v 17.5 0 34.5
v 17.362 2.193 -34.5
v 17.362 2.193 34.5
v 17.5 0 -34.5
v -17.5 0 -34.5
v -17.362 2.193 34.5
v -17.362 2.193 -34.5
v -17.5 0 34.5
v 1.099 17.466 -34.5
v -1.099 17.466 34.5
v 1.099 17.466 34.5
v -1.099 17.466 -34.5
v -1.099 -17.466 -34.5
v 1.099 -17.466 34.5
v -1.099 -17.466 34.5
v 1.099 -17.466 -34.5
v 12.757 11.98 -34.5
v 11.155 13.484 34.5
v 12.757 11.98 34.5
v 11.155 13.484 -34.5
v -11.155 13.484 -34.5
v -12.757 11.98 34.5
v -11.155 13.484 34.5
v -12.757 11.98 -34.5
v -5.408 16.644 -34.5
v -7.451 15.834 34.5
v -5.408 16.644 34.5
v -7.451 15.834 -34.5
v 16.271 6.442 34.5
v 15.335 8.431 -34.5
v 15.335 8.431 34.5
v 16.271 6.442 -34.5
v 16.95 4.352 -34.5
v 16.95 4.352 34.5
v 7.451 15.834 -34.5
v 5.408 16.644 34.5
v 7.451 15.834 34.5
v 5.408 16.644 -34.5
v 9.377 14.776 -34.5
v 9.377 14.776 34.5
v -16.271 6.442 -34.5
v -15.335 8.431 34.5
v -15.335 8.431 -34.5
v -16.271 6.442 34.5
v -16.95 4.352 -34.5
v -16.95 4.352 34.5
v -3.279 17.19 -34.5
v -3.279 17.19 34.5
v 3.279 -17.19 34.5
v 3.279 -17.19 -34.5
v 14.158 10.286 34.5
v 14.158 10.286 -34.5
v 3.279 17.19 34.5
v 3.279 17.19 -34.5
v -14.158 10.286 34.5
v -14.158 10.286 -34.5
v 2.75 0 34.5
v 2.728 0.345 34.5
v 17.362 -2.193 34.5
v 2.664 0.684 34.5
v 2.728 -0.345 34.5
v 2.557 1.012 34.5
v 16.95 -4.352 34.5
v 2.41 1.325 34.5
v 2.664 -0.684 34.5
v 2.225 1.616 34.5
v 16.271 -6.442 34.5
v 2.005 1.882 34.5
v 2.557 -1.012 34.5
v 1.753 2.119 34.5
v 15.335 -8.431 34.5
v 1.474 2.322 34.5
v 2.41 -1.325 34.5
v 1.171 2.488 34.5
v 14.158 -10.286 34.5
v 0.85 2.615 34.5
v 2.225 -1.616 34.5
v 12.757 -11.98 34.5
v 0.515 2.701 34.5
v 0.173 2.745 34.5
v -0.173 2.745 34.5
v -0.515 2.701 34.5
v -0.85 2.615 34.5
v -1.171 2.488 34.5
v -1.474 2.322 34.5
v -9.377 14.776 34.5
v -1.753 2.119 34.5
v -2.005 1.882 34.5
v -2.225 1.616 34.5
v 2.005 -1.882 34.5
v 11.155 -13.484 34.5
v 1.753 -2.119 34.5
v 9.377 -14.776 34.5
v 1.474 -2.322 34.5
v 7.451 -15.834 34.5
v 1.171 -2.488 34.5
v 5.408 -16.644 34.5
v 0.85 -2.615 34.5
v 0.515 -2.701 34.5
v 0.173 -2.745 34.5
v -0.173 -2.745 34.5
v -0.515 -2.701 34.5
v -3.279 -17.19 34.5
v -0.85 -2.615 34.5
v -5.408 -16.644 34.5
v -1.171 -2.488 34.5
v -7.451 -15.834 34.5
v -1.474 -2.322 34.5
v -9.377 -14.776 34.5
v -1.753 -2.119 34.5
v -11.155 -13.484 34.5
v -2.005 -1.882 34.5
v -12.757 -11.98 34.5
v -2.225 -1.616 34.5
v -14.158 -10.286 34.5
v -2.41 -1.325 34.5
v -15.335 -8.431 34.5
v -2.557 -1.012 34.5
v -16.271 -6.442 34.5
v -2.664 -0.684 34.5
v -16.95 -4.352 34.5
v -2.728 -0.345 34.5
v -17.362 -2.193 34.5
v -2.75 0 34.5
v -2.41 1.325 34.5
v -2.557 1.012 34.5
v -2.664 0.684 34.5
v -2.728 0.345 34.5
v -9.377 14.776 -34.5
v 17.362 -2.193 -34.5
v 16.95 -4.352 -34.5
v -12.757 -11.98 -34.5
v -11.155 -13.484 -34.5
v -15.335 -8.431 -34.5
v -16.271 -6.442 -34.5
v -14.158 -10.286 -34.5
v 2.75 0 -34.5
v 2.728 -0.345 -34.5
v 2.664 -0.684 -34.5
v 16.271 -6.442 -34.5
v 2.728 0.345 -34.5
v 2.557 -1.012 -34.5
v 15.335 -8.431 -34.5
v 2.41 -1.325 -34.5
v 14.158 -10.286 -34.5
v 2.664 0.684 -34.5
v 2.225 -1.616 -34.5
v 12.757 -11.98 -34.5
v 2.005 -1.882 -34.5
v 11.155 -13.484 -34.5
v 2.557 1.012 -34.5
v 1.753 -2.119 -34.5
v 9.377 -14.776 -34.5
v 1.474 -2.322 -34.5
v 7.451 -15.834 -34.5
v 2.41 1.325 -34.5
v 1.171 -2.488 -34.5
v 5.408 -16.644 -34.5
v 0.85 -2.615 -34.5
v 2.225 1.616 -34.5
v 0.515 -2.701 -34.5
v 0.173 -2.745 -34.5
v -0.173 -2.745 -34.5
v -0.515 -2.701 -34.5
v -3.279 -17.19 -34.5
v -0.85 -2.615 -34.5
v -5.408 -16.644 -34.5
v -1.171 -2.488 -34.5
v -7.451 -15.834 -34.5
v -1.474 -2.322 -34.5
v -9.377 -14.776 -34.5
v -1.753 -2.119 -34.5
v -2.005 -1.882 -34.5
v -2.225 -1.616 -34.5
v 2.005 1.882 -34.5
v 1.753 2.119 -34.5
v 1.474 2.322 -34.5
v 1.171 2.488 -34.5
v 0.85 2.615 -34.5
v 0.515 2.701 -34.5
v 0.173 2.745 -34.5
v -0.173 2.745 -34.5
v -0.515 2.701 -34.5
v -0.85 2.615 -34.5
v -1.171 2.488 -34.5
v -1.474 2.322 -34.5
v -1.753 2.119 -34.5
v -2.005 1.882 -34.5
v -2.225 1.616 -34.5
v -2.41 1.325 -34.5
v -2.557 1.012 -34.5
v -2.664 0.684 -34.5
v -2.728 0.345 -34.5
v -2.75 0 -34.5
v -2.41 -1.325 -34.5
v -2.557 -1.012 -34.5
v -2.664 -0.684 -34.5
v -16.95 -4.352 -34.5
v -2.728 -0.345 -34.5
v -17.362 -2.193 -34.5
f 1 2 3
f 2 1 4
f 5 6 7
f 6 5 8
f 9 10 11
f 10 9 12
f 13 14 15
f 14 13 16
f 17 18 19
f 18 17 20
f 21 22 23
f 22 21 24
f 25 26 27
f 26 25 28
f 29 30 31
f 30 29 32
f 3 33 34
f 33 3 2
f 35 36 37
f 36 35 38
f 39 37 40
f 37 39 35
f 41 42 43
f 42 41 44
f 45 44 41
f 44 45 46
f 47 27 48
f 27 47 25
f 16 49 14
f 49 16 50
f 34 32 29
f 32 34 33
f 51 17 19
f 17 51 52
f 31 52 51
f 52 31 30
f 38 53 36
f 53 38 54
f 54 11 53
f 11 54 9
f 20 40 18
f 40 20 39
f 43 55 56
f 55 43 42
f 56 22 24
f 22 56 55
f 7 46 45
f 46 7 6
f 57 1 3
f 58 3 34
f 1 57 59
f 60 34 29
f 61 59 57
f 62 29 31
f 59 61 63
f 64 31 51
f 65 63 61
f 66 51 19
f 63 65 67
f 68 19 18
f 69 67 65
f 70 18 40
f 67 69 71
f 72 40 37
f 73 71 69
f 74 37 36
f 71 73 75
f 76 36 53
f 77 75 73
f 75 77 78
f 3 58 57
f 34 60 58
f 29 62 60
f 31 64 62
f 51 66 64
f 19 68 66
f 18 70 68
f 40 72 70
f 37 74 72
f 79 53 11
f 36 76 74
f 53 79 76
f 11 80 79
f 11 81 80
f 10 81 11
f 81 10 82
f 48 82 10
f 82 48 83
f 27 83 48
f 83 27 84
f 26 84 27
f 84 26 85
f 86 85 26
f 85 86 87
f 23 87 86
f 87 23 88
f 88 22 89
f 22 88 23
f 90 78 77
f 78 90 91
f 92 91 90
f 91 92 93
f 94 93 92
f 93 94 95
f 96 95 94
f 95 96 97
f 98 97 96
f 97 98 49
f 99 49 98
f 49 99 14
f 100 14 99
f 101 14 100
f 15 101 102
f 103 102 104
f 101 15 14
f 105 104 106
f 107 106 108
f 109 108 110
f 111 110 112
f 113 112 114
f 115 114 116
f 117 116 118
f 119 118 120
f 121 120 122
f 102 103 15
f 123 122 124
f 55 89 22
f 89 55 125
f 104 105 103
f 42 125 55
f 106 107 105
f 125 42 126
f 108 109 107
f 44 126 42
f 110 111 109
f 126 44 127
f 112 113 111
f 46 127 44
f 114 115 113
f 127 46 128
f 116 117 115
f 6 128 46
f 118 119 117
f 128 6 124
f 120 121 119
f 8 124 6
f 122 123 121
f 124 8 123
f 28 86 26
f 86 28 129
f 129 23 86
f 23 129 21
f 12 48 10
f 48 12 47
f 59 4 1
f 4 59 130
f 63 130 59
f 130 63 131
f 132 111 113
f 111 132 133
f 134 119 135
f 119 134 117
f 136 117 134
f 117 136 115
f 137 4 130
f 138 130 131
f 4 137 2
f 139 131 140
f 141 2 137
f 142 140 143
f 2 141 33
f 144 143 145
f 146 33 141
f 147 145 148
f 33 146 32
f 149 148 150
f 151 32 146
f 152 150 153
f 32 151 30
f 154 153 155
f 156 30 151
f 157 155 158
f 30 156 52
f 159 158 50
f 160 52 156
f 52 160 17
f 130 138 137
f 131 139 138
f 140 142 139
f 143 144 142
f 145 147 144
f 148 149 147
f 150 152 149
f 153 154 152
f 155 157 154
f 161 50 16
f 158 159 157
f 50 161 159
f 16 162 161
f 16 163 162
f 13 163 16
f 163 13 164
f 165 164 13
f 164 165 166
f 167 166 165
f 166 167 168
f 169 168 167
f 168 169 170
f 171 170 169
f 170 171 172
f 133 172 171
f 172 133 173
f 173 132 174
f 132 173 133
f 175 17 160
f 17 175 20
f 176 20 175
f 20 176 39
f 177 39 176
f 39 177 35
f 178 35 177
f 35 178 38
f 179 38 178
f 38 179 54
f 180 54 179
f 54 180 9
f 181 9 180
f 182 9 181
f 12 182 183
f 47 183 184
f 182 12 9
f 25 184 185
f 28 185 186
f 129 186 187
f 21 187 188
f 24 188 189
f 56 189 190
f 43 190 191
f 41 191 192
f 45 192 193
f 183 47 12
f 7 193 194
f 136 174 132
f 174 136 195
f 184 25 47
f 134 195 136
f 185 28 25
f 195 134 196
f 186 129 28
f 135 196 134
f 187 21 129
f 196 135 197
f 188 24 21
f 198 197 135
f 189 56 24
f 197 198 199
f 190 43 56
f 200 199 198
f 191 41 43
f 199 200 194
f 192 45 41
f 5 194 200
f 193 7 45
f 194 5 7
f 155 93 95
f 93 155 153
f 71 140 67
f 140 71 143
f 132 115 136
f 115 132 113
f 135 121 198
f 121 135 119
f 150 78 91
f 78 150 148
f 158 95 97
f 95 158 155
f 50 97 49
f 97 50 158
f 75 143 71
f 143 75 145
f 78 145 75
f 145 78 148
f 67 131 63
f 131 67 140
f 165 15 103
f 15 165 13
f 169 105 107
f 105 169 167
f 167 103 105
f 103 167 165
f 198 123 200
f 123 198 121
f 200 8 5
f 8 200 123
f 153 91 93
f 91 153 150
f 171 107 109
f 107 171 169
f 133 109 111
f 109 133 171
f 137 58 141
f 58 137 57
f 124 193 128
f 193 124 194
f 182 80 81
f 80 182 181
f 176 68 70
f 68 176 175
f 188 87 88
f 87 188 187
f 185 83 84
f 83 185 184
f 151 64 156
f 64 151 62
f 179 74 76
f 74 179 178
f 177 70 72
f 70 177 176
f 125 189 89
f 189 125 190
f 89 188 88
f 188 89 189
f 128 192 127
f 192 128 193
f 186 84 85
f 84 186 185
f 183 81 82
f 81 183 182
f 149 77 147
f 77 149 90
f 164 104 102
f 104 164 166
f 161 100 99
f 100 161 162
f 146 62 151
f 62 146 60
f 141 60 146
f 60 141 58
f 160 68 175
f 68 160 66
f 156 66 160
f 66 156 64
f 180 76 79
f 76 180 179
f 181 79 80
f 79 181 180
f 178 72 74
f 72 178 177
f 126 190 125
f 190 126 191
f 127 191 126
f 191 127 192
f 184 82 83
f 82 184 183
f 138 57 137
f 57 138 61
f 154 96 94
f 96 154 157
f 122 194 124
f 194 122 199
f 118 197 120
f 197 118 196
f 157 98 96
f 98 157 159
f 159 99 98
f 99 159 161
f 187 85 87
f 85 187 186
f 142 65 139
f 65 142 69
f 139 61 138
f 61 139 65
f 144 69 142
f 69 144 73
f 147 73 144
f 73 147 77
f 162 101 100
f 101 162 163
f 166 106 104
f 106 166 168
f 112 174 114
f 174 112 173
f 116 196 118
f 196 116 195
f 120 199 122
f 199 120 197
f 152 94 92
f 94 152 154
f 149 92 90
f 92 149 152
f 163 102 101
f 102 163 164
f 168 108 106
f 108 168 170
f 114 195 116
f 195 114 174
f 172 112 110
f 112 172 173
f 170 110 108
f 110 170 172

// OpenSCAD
$fn = 50;


difference() {
	union() {
		translate(v = [0, 0, -34.5000000000]) {
			cylinder(h = 69, r = 17.5000000000);
		}
	}
	union() {
		translate(v = [0, 0, -100.0000000000]) {
			cylinder(h = 200, r = 2.7500000000);
		}
	}
}
